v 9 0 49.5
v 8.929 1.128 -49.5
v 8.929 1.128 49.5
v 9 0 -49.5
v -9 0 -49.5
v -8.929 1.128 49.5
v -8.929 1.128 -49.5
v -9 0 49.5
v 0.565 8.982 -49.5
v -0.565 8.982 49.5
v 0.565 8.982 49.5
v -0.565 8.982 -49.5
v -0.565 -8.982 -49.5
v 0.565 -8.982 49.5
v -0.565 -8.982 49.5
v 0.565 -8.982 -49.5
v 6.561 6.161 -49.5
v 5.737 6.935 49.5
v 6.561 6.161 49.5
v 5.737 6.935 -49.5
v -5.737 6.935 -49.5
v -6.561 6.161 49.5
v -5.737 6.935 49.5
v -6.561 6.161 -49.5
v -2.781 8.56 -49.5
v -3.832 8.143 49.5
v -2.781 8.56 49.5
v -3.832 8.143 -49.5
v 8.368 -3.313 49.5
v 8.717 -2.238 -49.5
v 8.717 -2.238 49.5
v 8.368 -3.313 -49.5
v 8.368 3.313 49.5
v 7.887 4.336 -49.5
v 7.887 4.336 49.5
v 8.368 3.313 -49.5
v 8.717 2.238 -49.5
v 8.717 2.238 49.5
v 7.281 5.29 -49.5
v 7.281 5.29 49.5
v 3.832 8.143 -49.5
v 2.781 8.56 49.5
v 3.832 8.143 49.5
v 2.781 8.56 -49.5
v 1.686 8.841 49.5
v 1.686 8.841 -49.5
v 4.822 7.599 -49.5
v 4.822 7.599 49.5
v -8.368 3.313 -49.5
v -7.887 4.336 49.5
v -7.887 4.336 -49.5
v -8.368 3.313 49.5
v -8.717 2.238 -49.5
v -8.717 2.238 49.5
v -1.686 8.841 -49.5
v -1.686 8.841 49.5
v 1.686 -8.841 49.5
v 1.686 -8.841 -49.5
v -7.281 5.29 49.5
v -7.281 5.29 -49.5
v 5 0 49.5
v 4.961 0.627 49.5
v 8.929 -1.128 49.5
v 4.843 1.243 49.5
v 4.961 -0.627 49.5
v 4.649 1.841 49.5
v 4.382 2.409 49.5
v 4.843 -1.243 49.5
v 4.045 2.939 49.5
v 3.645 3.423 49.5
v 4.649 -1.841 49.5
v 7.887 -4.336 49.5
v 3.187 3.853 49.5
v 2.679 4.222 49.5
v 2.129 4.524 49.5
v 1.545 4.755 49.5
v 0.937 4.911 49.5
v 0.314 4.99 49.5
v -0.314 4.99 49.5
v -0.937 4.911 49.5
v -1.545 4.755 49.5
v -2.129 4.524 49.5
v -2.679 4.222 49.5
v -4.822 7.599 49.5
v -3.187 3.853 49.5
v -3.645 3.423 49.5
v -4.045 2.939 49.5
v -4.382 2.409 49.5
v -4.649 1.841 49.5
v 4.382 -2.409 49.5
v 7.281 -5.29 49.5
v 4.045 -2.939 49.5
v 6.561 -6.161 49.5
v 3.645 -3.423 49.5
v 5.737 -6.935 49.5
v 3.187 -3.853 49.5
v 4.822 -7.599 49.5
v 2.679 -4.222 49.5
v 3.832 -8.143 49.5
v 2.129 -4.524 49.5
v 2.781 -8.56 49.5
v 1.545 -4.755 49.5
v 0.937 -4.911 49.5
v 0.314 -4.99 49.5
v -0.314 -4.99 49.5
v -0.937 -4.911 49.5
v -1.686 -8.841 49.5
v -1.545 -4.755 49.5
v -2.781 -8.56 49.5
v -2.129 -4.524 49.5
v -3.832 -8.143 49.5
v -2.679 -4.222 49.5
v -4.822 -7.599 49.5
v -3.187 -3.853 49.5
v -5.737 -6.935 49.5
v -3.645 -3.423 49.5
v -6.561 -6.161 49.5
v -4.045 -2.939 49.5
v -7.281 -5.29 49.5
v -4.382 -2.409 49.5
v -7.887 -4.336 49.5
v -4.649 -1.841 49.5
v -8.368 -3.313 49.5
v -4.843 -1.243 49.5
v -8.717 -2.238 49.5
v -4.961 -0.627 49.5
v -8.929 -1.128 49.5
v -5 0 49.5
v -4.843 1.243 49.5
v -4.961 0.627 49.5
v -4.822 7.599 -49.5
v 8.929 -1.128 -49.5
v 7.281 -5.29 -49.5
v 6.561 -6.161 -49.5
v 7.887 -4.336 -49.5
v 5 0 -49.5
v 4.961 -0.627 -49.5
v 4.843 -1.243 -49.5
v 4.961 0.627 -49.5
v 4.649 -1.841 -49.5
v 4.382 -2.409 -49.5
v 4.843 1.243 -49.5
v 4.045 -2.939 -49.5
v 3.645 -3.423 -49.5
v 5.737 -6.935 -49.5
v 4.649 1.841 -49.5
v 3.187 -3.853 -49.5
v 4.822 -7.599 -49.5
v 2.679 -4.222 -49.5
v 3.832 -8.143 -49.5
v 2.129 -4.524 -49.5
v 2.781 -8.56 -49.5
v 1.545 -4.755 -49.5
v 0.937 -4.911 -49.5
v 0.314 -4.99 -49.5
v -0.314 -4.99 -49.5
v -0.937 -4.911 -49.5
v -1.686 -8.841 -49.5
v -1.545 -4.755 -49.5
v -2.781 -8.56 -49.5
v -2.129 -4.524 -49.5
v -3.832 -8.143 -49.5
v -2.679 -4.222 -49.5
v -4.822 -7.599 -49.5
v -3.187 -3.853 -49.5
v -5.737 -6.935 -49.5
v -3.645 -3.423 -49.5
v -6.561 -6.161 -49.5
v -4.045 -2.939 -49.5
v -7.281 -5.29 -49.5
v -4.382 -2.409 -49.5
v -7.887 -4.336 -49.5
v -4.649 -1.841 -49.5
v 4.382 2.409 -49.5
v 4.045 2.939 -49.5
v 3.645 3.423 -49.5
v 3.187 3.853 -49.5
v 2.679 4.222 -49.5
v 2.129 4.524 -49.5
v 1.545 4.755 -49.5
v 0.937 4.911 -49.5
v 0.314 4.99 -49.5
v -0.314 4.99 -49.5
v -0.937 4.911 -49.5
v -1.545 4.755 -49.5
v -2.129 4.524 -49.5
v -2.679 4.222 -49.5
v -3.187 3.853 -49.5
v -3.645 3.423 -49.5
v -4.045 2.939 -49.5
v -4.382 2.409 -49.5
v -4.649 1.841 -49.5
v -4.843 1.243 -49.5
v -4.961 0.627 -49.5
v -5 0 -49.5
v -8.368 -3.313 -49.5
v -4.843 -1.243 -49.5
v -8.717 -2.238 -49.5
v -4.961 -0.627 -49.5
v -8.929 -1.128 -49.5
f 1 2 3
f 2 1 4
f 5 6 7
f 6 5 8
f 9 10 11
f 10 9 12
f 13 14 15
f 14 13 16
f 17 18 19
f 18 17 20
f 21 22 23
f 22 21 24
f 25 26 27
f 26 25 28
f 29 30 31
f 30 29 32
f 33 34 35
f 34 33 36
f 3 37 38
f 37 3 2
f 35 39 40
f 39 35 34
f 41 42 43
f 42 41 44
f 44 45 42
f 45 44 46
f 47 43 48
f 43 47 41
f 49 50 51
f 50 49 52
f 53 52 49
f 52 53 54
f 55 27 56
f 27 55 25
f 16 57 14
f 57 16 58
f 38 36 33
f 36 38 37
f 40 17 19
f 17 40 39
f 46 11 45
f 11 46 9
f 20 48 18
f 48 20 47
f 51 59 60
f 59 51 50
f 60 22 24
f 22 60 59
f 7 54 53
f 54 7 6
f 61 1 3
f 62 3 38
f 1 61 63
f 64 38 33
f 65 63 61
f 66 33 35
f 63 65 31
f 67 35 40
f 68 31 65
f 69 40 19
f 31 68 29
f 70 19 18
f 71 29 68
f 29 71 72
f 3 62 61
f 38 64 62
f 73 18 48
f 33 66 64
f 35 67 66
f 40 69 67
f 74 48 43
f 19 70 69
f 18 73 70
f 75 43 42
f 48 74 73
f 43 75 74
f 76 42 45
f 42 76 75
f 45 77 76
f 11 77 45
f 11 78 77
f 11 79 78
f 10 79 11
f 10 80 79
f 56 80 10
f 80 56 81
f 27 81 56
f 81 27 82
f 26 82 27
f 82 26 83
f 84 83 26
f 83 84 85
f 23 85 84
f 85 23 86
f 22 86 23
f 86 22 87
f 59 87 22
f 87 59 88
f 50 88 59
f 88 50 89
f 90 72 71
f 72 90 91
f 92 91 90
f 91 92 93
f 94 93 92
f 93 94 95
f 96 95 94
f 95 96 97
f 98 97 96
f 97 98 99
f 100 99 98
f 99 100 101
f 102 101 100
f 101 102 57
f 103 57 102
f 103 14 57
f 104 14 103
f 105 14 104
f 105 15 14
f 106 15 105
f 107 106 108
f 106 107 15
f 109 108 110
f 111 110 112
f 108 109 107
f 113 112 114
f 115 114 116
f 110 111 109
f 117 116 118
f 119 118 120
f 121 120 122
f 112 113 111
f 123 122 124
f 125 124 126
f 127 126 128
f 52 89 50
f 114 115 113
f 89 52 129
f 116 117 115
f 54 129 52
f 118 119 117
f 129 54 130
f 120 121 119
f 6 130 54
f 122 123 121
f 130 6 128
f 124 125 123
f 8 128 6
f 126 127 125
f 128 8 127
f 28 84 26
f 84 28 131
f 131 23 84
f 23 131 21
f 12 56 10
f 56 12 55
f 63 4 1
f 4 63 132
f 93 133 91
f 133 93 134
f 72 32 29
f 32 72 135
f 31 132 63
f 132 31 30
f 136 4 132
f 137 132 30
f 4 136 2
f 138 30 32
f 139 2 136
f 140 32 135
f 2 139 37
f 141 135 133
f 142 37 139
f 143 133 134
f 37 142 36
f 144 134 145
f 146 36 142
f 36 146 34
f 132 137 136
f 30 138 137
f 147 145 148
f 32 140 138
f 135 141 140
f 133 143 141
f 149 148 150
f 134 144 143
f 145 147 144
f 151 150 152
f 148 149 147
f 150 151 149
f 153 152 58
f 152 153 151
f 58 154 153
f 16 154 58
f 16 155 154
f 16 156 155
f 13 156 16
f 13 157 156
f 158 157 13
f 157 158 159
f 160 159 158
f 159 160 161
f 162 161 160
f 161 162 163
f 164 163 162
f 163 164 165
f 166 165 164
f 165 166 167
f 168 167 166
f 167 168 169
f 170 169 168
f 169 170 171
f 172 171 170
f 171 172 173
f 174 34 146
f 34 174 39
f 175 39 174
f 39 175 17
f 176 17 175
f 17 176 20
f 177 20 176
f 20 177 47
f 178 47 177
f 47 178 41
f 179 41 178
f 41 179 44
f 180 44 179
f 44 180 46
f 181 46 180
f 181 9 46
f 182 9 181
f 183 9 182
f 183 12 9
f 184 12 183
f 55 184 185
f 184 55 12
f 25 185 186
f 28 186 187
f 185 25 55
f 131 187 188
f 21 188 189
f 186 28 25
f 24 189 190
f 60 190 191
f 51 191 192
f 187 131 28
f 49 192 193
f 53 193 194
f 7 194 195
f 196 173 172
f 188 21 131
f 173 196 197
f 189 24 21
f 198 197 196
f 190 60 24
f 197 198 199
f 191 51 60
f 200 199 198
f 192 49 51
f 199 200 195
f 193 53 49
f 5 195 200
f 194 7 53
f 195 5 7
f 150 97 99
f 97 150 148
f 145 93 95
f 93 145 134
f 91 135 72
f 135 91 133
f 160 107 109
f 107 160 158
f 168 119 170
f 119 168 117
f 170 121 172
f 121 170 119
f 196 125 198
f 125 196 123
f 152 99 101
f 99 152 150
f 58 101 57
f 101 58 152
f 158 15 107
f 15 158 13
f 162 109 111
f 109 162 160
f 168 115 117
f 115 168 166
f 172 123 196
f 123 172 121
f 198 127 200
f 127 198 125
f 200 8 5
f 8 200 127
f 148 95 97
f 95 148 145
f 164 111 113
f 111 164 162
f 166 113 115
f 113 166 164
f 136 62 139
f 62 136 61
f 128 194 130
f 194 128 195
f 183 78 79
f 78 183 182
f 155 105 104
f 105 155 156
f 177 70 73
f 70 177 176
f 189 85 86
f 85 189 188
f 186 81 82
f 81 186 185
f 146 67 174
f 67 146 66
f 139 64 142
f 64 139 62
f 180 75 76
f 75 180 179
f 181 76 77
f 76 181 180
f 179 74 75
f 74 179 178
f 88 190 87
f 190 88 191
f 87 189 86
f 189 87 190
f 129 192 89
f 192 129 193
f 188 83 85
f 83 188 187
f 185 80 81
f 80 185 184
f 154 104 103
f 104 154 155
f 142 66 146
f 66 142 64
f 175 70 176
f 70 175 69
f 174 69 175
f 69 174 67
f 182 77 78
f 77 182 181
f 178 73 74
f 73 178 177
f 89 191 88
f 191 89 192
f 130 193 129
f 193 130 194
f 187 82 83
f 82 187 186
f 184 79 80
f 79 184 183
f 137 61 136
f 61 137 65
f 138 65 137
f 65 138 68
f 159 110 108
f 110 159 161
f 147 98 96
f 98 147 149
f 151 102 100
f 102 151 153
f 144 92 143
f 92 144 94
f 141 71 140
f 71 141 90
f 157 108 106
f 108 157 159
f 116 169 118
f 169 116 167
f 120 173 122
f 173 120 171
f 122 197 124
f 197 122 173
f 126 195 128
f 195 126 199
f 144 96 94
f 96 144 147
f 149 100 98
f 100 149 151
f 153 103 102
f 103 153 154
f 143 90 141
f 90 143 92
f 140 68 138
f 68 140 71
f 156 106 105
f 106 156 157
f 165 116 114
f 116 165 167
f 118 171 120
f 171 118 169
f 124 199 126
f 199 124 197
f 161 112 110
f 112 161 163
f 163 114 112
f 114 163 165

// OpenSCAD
$fn = 50;


difference() {
	union() {
		translate(v = [0, 0, -49.5000000000]) {
			cylinder(h = 99, r = 9.0000000000);
		}
	}
	union() {
		translate(v = [0, 0, -100.0000000000]) {
			cylinder(h = 200, r = 5.0000000000);
		}
	}
}
